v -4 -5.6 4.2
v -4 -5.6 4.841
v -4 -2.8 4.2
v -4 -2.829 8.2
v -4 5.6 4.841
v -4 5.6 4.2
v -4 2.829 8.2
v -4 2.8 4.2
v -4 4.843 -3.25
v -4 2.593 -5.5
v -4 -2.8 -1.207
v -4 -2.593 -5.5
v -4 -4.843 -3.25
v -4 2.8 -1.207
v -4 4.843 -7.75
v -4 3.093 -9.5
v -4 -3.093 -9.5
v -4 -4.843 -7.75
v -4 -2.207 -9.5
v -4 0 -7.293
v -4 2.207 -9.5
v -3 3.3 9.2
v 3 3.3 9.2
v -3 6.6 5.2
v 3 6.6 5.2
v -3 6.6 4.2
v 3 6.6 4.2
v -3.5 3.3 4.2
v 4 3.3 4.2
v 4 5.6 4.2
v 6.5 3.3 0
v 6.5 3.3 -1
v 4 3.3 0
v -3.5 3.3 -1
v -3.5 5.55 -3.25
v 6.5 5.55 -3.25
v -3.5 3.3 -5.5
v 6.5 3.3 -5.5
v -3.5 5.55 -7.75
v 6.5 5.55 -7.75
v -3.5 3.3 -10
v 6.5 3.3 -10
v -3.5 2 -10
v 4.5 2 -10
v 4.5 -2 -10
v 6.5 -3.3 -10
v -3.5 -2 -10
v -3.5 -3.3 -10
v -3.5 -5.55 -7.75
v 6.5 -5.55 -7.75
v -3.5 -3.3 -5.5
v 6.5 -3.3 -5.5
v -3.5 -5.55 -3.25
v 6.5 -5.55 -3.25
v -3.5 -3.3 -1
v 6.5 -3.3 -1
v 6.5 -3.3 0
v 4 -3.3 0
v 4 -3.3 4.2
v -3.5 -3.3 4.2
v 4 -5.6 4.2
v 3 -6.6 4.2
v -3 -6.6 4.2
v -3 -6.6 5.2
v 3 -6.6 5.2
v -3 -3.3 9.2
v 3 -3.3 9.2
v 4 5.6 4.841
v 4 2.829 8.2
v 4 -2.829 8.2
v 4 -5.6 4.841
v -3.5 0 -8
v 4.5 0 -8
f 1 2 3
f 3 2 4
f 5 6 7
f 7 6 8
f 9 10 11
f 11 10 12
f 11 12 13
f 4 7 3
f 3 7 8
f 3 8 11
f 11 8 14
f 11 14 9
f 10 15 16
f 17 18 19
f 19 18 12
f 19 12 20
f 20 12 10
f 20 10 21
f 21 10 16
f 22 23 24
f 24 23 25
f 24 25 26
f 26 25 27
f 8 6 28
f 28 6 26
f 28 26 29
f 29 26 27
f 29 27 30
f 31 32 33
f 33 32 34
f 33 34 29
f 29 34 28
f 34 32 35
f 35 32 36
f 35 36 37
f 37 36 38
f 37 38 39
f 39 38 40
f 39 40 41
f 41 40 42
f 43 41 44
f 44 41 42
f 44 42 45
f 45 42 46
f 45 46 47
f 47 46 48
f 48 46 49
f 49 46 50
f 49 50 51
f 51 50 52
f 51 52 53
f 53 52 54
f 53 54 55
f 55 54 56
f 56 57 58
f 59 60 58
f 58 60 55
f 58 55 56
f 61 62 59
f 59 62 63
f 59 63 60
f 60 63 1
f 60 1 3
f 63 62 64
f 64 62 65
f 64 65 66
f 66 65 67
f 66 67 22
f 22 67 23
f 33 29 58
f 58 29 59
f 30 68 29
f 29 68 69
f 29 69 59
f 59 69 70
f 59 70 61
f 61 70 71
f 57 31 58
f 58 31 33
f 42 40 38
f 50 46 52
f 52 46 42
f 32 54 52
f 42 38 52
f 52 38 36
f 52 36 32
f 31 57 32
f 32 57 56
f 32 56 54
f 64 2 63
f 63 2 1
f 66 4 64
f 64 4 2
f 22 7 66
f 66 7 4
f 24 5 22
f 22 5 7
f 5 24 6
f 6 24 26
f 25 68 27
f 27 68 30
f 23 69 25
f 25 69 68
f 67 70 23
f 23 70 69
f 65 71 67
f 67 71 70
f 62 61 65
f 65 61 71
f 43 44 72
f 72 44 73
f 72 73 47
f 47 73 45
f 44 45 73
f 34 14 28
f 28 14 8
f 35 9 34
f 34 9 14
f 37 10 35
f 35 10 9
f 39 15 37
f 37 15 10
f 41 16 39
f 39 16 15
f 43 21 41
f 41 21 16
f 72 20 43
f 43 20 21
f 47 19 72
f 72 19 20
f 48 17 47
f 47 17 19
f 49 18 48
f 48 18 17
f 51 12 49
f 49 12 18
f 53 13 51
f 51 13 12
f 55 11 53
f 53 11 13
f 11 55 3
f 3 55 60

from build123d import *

# Parameters (mm, degrees)
BOSS_EXTRUDE1_DEPTH      = 4
BOSS_EXTRUDE1_DEPTH_BACK = 4
BOSS_EXTRUDE2_DEPTH      = 2.5
CHAMFER1_SIZE            = 1
CUT_EXTRUDE1_DEPTH       = 8.5
CHAMFER2_SIZE            = 0.5


with BuildPart() as part:
    # Sketch1 → Boss-Extrude1 (new, two sides: drawn at the far end of the back side and taken through both)
    with BuildSketch(Plane.YZ.offset(-BOSS_EXTRUDE1_DEPTH_BACK)):
        Polygon((-3.3, 9.2), (3.3, 9.2), (6.6, 5.2), (6.6, 4.2), (3.3, 4.2), (3.3, 0), (3.3, -1), (5.55, -3.25), (3.3, -5.5), (5.55, -7.75), (3.3, -10), (-3.3, -10), (-5.55, -7.75), (-3.3, -5.5), (-5.55, -3.25), (-3.3, -1), (-3.3, 0), (-3.3, 4.2), (-6.6, 4.2), (-6.6, 5.2), align=None)
    extrude(amount=BOSS_EXTRUDE1_DEPTH + BOSS_EXTRUDE1_DEPTH_BACK)

    # Sketch2 → Boss-Extrude2 (add)
    with BuildSketch(Plane.YZ.offset(4)):
        Polygon((-3.3, 0), (3.3, 0), (3.3, -1), (5.55, -3.25), (3.3, -5.5), (5.55, -7.75), (3.3, -10), (-3.3, -10), (-5.55, -7.75), (-3.3, -5.5), (-5.55, -3.25), (-3.3, -1), align=None)
    extrude(amount=BOSS_EXTRUDE2_DEPTH)

    # Chamfer1
    chamfer1_edges = [part.edges().sort_by_distance(p)[0] for p in [
        (-4, -4.95, 7.2),
        (-4, -6.6, 4.7),
        (-4, 4.95, 7.2),
        (4, 4.95, 7.2),
        (4, 0, 9.2),
        (4, -4.95, 7.2),
        (4, -6.6, 4.7),
        (4, 6.6, 4.7),
        (-4, 6.6, 4.7),
        (-4, 0, 9.2),
    ]]
    chamfer(chamfer1_edges, length=CHAMFER1_SIZE)

    # Sketch3 → Cut-Extrude1 (cut)
    with BuildSketch(Plane(origin=(-4, 0, 0), x_dir=(0, -1, 0), z_dir=(-1, 0, 0))):
        Polygon((0, -8), (2, -10), (-2, -10), align=None)
    extrude(amount=-CUT_EXTRUDE1_DEPTH, mode=Mode.SUBTRACT)

    # Chamfer2
    chamfer2_edges = [part.edges().sort_by_distance(p)[0] for p in [
        (-4, 2.65, -10),
        (-4, 1, -9),
        (-4, -1, -9),
        (-4, -3.3, 1.6),
        (-4, -4.425, -2.125),
        (-4, -4.425, -4.375),
        (-4, -4.425, -6.625),
        (-4, -4.425, -8.875),
        (-4, -2.65, -10),
        (-4, 4.425, -8.875),
        (-4, 4.425, -6.625),
        (-4, 4.425, -4.375),
        (-4, 4.425, -2.125),
        (-4, 3.3, 1.6),
    ]]
    chamfer(chamfer2_edges, length=CHAMFER2_SIZE)


solid = part.part
